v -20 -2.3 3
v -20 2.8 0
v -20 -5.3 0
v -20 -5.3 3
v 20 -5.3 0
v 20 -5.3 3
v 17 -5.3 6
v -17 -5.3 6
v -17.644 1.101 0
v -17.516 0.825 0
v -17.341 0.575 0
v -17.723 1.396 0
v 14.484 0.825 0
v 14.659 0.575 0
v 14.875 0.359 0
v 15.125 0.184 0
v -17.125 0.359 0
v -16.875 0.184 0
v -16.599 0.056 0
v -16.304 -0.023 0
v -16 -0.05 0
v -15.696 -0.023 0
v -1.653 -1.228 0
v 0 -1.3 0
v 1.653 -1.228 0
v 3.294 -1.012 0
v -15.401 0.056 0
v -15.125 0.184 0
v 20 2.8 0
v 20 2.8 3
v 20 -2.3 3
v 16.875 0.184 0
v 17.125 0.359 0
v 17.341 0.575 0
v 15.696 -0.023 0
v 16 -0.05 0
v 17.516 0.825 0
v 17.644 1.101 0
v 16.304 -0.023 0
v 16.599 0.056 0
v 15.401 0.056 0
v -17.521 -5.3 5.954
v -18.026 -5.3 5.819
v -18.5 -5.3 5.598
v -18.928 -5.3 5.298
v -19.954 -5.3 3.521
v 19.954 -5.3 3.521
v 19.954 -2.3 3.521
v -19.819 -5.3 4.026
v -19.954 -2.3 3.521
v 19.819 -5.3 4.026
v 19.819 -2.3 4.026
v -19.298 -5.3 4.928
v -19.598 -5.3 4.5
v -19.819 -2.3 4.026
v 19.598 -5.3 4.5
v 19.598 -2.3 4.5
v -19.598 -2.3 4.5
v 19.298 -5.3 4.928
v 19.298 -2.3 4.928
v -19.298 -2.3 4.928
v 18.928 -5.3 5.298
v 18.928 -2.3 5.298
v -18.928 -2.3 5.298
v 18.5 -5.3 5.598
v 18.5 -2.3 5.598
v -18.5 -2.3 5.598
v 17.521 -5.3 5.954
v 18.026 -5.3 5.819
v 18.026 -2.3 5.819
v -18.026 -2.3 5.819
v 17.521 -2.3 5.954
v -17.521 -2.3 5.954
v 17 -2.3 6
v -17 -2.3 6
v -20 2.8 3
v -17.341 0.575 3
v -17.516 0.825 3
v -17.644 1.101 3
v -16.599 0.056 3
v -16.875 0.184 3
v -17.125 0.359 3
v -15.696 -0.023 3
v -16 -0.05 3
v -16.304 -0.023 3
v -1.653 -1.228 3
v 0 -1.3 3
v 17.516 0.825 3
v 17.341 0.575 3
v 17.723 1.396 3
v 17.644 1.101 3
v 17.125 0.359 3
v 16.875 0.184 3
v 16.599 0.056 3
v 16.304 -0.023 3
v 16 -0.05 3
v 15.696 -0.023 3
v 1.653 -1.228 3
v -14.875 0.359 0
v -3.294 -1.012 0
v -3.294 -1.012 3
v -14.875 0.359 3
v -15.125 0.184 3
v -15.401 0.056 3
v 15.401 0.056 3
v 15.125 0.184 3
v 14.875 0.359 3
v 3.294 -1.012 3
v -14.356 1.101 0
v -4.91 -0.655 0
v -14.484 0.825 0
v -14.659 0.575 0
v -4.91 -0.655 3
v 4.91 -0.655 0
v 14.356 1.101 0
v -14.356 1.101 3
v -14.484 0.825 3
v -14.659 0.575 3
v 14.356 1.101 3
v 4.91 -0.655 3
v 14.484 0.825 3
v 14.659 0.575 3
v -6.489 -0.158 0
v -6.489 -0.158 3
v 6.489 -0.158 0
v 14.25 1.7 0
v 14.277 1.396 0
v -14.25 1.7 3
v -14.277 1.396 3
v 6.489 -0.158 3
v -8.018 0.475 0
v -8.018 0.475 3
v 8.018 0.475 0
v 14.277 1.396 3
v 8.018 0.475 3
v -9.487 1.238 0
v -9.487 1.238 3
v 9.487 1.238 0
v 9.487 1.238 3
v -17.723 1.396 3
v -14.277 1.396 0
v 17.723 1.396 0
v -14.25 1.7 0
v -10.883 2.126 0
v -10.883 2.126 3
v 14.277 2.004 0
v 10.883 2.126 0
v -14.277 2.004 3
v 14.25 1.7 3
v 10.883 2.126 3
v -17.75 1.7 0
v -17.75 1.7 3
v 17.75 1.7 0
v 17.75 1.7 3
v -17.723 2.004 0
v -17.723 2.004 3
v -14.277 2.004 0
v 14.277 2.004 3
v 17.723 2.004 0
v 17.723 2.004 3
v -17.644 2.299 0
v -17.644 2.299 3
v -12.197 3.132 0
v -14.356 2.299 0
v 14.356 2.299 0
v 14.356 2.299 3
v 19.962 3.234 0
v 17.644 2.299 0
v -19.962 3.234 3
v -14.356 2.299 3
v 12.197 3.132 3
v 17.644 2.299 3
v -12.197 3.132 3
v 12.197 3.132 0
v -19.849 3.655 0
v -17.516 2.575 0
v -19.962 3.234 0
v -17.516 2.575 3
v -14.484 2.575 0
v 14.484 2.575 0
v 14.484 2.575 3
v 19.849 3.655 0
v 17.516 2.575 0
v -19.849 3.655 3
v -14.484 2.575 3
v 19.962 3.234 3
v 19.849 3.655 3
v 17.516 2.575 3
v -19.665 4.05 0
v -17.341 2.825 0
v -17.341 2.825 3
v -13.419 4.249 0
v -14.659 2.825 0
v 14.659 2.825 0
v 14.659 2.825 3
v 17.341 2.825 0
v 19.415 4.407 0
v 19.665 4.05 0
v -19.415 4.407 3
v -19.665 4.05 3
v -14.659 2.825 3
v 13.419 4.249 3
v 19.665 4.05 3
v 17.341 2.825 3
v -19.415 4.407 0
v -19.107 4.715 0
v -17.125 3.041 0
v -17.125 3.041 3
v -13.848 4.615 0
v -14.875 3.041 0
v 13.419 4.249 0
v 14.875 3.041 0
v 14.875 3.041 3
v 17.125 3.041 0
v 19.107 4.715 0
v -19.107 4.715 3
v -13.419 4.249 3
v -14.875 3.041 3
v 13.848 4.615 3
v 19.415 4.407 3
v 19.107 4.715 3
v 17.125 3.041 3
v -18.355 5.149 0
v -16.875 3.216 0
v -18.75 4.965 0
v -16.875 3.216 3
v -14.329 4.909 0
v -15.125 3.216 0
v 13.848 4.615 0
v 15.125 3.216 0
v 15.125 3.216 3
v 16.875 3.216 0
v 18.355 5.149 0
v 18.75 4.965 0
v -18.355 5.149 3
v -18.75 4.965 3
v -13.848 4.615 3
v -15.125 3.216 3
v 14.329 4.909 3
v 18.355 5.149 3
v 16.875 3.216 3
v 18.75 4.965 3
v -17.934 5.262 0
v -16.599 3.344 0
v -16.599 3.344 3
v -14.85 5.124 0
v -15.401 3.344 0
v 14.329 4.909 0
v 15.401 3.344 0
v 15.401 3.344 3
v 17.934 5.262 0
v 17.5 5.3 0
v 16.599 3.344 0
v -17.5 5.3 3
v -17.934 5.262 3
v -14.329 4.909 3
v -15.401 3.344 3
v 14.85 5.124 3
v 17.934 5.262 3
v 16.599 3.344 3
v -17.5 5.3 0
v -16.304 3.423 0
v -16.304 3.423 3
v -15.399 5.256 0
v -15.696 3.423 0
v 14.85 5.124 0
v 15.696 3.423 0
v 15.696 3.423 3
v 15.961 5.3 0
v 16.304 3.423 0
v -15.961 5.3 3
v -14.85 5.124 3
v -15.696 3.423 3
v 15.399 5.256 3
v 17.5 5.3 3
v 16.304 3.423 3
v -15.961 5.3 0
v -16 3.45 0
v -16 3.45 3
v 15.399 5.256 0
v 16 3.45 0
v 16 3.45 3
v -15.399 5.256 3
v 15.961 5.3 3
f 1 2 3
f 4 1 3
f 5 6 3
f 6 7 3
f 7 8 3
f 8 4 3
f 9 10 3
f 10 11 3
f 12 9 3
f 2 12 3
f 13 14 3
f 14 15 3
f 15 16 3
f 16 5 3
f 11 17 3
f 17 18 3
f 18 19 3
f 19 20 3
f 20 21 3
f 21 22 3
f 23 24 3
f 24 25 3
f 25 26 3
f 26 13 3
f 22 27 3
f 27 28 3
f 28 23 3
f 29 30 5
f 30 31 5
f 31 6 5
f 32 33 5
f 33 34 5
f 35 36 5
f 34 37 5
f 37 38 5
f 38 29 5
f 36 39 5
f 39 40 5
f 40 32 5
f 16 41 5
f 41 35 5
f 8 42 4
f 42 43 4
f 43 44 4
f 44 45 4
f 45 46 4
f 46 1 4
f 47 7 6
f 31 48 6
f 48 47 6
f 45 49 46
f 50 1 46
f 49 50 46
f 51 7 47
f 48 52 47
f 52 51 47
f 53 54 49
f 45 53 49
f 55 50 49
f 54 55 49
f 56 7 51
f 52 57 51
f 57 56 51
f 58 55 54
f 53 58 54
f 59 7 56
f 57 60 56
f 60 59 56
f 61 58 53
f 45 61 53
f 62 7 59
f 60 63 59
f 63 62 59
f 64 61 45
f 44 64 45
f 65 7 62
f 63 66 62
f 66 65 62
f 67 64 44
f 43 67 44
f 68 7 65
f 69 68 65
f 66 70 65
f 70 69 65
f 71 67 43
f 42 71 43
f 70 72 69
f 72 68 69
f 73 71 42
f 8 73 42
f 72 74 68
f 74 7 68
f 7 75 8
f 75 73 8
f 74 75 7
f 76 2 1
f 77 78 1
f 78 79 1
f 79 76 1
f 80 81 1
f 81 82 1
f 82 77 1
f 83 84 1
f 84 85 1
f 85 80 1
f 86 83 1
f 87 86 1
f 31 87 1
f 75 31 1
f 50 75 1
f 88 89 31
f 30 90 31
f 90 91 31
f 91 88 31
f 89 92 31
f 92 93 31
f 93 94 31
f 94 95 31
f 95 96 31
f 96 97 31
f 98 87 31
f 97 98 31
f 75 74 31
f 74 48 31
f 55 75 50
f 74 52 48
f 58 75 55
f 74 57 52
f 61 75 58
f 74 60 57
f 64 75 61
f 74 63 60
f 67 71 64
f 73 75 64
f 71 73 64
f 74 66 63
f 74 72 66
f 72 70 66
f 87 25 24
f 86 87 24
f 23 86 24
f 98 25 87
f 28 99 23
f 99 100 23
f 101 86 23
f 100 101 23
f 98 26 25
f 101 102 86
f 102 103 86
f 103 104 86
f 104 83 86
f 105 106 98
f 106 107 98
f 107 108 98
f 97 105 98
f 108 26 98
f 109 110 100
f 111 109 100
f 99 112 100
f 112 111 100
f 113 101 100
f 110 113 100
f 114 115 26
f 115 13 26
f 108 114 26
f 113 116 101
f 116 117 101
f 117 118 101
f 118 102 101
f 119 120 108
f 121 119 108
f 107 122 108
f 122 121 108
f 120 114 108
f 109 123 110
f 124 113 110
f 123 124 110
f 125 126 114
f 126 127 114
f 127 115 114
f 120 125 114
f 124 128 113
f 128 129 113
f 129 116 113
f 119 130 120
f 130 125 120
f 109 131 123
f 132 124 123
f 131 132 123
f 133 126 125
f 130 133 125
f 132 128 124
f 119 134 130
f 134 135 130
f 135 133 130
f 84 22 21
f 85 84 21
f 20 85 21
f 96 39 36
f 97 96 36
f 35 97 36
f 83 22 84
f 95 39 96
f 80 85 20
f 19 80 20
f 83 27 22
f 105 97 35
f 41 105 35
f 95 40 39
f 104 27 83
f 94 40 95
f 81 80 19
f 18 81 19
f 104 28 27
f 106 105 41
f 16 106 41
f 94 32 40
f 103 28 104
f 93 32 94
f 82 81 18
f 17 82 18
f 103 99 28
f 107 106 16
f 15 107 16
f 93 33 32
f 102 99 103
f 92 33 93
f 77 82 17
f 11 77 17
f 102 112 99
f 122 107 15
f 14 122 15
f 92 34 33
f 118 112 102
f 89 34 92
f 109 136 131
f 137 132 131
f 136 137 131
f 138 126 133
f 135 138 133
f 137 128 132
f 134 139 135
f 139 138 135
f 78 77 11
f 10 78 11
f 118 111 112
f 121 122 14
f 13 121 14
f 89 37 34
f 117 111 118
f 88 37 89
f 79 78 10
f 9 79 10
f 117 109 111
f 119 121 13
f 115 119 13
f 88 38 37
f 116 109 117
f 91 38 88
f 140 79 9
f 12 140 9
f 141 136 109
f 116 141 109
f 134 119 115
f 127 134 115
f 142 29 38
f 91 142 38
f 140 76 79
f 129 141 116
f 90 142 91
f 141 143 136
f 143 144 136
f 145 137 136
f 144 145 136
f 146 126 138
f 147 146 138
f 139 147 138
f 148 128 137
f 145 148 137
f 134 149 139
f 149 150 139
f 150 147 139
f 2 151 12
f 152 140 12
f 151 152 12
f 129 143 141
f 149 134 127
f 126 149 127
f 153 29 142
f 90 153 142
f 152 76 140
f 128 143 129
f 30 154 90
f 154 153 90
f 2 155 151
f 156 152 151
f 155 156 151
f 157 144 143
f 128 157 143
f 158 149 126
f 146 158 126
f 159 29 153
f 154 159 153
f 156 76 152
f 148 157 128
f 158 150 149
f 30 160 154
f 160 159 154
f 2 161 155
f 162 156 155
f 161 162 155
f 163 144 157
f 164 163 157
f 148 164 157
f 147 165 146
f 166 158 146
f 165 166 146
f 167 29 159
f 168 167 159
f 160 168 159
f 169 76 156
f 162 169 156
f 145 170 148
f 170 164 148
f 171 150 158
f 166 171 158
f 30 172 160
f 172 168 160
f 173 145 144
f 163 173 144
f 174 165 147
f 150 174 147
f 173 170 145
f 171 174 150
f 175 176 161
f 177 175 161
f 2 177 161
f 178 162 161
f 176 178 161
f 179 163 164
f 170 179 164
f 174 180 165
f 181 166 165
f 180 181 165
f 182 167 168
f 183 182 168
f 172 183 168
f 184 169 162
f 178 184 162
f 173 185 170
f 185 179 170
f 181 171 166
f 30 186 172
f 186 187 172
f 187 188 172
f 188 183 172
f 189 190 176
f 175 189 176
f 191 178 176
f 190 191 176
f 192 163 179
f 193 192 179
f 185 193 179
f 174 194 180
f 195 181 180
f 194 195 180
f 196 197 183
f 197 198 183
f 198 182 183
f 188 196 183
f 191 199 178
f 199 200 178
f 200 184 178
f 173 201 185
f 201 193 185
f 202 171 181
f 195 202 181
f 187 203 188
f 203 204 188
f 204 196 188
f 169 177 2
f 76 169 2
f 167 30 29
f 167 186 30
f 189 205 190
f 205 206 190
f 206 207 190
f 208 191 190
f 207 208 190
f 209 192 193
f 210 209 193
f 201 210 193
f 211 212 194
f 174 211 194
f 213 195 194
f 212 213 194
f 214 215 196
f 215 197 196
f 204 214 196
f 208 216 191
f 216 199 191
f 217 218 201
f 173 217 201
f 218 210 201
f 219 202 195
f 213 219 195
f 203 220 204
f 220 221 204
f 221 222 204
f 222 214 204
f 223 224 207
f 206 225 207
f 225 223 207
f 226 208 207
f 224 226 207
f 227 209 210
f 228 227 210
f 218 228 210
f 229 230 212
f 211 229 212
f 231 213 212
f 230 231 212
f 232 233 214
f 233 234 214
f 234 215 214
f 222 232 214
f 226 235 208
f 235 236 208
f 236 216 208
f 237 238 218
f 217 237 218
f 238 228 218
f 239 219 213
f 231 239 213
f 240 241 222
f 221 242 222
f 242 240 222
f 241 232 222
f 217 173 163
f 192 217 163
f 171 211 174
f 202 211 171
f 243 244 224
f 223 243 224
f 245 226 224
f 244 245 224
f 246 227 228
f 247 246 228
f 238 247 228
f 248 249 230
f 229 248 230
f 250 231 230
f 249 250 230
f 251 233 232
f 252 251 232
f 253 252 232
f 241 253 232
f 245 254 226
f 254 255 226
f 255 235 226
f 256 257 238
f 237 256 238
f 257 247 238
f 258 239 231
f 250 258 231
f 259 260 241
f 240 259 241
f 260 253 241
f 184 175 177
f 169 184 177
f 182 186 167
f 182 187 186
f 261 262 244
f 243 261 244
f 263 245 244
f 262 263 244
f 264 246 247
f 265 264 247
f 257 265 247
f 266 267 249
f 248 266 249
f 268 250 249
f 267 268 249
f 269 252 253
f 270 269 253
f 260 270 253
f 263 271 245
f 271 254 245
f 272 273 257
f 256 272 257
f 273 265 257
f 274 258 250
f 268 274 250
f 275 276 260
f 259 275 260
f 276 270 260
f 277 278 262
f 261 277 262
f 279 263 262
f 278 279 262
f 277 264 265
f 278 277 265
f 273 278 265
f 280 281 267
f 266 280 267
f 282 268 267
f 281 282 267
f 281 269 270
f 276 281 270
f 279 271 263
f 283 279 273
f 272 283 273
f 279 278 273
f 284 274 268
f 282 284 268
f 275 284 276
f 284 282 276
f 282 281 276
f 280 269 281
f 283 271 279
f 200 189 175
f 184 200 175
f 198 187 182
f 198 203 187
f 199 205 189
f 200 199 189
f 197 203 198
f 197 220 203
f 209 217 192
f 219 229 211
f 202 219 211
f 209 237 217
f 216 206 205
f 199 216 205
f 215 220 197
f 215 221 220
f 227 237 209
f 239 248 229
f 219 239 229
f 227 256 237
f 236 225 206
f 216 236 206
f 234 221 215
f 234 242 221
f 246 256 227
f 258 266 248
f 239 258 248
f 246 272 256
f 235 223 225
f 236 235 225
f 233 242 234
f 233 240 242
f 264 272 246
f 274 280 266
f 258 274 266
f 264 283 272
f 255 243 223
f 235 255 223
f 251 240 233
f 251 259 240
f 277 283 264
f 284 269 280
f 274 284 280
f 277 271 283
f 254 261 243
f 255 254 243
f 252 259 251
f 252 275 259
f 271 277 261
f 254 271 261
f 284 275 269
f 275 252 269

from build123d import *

# Parameters (mm, degrees)
ESBO_O1_W                = 40
ESBO_O1_H                = 10.6
RESSALTO_EXTRUS_O1_DEPTH = 3
ESBO_O2_W                = 40
ESBO_O2_H                = 3
RESSALTO_EXTRUS_O2_DEPTH = 3
FILETE1_R                = 3
ESBO_O3_R                = 1.75
CORTE_EXTRUS_O1_DEPTH    = 3
FILETE2_R                = 2.5
FILETE3_R                = 3.6


with BuildPart() as part:
    # Esboço1 → Ressalto-extrusão1 (new body)
    with BuildSketch(Plane.XY):
        Rectangle(ESBO_O1_W, ESBO_O1_H)
    extrude(amount=RESSALTO_EXTRUS_O1_DEPTH)

    # Esboço2 → Ressalto-extrusão2 (add)
    with BuildSketch(Plane.XY.offset(3)):
        with Locations((0, -3.8)):
            Rectangle(ESBO_O2_W, ESBO_O2_H)
    extrude(amount=RESSALTO_EXTRUS_O2_DEPTH)

    # Filete1
    filete1_edges = [part.edges().sort_by_distance(p)[0] for p in [
        (-20, -3.8, 6),
        (20, -3.8, 6),
    ]]
    fillet(filete1_edges, radius=FILETE1_R)

    # Esboço3 → Corte-extrusão1 (cut)
    with BuildSketch(Plane(origin=(0, 0, 0), x_dir=(-1, 0, 0), z_dir=(0, 0, -1))):
        with BuildLine():
            ThreePointArc((14.39583273, 5.3), (17.811805381, 11.086408762), (19, 17.7))
            ThreePointArc((19, 17.7), (-6.613591238, 35.511805381), (-14.39583273, 5.3))
            Line((-14.39583273, 5.3), (14.39583273, 5.3))
        make_face()
        with BuildLine():
            Line((14.39583273, 5.3), (-14.39583273, 5.3))
            ThreePointArc((-14.39583273, 5.3), (0, -1.3), (14.39583273, 5.3))
        make_face()
        with Locations((16, 1.7)):
            Circle(ESBO_O3_R)
        with Locations((-16, 1.7)):
            Circle(ESBO_O3_R)
    extrude(amount=-CORTE_EXTRUS_O1_DEPTH, mode=Mode.SUBTRACT)

    # Filete2
    filete2_edges = [part.edges().sort_by_distance(p)[0] for p in [
        (-20, 5.3, 1.5),
        (20, 5.3, 1.5),
    ]]
    fillet(filete2_edges, radius=FILETE2_R)

    # Filete3
    filete3_edges = [part.edges().sort_by_distance(p)[0] for p in [
        (-14.39583273, 5.3, 1.5),
        (14.39583273, 5.3, 1.5),
    ]]
    fillet(filete3_edges, radius=FILETE3_R)


solid = part.part
